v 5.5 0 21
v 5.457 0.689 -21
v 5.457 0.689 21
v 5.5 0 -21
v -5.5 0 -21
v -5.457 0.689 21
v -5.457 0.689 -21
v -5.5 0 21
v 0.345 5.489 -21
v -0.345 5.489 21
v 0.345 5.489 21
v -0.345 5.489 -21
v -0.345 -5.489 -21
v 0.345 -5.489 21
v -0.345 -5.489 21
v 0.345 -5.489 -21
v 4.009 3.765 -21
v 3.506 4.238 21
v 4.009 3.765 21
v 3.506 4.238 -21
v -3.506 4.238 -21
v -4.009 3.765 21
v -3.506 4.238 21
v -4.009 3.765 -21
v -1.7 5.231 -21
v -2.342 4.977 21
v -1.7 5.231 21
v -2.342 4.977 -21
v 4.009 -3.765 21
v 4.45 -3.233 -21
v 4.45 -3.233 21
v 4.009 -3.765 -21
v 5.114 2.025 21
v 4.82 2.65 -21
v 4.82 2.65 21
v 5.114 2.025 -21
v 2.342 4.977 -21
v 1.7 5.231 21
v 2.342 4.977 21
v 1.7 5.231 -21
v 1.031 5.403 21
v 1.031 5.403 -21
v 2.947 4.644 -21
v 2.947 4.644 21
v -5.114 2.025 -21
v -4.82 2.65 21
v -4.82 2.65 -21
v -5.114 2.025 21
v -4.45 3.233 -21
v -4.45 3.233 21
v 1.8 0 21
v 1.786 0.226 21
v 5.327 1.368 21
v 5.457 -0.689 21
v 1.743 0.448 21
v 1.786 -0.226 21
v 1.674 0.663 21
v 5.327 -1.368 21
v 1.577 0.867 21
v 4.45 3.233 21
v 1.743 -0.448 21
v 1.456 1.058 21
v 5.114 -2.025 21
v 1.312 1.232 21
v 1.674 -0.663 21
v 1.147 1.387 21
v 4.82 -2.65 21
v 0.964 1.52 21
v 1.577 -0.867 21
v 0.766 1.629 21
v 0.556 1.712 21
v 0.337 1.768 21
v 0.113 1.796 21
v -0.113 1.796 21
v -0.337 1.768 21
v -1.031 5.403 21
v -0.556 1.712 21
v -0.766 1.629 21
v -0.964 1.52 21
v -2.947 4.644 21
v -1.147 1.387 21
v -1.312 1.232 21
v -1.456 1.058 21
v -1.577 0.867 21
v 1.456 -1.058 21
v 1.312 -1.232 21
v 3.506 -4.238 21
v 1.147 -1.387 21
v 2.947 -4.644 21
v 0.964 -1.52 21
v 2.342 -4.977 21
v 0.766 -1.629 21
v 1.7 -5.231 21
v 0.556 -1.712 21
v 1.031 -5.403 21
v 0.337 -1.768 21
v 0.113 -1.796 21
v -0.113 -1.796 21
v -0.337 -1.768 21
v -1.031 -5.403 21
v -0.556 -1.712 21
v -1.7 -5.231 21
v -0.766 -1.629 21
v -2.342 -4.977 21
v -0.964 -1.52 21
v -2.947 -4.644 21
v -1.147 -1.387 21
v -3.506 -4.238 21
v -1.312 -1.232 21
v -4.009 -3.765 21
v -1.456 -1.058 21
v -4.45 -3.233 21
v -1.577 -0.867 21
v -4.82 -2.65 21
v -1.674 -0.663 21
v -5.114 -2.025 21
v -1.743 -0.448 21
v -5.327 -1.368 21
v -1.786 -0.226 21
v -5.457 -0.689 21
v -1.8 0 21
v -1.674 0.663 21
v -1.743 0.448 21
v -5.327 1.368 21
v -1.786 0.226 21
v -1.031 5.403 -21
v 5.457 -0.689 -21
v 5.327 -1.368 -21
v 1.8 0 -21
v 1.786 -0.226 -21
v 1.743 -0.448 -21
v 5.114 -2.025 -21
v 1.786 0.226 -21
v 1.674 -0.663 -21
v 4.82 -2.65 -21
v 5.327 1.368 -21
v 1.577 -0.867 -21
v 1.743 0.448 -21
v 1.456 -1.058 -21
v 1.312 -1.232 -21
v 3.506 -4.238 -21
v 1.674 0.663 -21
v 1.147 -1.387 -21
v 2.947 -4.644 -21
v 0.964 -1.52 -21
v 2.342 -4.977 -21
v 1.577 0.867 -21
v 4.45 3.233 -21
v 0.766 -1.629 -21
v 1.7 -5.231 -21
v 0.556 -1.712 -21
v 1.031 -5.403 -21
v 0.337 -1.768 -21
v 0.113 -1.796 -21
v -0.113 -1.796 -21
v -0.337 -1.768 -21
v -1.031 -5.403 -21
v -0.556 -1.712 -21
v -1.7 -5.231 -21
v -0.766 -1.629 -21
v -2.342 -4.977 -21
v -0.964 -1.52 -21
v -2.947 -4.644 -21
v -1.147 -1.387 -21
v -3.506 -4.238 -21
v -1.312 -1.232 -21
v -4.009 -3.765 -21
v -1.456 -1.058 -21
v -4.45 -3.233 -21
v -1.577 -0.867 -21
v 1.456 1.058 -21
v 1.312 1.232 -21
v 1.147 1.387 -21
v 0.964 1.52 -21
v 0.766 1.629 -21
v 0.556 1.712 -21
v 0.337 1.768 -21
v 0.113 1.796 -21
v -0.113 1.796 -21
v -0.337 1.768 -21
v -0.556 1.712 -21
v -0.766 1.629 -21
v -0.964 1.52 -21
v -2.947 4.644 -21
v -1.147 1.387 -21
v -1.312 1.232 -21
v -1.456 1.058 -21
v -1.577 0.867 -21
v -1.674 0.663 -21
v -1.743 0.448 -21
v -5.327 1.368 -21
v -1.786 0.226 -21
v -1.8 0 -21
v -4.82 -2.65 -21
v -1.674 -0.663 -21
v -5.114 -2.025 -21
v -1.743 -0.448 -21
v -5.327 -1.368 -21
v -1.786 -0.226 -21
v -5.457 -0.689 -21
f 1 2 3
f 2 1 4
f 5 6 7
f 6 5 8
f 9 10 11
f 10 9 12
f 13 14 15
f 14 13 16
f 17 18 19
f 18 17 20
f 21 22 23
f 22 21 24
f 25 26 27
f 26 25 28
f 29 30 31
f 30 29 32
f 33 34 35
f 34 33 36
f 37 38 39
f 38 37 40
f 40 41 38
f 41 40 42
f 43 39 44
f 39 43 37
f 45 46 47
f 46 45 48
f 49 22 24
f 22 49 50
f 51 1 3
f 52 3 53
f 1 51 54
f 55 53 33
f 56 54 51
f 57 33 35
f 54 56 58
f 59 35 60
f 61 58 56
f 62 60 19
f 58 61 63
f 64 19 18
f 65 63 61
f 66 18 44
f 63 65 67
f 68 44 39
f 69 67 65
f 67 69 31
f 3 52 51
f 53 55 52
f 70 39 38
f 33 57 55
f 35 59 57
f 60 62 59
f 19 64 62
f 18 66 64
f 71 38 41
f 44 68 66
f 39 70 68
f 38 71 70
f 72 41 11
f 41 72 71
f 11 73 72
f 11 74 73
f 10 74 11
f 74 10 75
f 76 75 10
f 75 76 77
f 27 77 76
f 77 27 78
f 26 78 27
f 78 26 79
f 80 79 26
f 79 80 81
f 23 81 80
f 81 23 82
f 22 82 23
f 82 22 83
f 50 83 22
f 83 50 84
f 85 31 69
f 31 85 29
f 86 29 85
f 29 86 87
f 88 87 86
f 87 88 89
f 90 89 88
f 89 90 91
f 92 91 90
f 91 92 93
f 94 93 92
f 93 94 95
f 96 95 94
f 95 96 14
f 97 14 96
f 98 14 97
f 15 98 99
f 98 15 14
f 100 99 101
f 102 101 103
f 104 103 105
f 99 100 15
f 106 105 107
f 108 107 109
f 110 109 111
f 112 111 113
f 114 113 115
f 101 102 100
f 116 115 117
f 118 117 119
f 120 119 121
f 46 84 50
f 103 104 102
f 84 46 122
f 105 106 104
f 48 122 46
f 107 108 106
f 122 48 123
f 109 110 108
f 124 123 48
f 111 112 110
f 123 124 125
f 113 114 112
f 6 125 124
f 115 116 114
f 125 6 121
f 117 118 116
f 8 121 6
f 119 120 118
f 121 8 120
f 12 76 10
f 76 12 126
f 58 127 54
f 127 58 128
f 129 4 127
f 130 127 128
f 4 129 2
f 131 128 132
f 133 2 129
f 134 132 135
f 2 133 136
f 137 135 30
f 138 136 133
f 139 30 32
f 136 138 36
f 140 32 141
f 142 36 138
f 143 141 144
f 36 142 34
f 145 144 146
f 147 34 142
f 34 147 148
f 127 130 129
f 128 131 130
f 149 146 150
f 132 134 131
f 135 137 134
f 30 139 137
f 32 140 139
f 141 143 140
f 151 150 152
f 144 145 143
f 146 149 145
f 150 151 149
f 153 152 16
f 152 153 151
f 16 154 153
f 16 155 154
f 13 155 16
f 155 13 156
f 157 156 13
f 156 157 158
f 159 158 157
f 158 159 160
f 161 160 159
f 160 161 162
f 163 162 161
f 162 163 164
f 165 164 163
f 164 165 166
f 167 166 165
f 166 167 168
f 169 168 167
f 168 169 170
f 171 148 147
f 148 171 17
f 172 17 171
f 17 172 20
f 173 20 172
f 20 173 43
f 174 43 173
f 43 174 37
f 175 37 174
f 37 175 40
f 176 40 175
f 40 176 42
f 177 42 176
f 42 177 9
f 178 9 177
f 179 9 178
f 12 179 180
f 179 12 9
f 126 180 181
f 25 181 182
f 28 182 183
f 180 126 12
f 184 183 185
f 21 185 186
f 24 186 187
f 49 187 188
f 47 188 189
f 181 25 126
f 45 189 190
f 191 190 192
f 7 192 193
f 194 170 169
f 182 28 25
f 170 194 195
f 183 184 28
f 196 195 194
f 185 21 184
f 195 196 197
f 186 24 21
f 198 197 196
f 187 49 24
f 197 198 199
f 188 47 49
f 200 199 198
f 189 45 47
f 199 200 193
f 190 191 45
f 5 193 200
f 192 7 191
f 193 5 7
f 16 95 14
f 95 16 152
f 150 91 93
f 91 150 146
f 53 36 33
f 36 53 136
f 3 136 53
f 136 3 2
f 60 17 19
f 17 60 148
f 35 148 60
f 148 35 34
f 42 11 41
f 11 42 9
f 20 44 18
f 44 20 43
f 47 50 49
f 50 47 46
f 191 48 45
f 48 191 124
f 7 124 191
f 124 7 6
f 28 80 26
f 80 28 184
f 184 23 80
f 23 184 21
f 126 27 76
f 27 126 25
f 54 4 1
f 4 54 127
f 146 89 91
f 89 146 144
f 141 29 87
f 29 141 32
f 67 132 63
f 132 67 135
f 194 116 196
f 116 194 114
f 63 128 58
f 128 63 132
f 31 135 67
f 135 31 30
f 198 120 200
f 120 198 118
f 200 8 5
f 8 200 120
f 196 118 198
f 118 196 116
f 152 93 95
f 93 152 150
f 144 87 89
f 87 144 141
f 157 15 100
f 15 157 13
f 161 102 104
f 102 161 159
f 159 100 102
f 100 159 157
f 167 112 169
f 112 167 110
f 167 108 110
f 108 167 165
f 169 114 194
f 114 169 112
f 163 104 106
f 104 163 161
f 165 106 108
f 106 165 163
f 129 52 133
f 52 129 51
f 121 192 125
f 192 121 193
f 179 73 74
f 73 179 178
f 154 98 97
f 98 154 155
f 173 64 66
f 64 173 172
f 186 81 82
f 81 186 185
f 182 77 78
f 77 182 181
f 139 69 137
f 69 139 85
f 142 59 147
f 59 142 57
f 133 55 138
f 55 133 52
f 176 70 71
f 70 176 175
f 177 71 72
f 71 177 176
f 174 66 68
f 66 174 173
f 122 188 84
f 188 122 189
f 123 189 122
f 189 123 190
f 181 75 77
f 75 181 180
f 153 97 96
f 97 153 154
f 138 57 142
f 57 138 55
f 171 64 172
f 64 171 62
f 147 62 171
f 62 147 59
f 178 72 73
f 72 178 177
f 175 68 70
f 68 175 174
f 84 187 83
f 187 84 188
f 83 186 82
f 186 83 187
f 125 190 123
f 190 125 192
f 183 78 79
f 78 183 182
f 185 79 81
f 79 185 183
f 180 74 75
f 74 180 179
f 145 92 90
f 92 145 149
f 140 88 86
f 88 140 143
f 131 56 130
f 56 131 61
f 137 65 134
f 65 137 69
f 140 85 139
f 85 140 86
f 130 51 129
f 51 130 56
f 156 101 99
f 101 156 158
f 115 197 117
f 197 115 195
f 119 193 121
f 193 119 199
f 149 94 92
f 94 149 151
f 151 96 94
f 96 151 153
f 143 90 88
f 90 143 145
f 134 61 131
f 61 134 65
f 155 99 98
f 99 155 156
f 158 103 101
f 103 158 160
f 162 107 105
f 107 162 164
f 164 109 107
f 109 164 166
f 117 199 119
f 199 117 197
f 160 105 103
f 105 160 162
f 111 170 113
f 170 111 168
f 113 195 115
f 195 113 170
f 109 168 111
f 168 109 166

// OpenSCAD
$fn = 50;


difference() {
	union() {
		translate(v = [0, 0, -21.0000000000]) {
			cylinder(h = 42, r = 5.5000000000);
		}
	}
	union() {
		translate(v = [0, 0, -100.0000000000]) {
			cylinder(h = 200, r = 1.8000000000);
		}
	}
}
